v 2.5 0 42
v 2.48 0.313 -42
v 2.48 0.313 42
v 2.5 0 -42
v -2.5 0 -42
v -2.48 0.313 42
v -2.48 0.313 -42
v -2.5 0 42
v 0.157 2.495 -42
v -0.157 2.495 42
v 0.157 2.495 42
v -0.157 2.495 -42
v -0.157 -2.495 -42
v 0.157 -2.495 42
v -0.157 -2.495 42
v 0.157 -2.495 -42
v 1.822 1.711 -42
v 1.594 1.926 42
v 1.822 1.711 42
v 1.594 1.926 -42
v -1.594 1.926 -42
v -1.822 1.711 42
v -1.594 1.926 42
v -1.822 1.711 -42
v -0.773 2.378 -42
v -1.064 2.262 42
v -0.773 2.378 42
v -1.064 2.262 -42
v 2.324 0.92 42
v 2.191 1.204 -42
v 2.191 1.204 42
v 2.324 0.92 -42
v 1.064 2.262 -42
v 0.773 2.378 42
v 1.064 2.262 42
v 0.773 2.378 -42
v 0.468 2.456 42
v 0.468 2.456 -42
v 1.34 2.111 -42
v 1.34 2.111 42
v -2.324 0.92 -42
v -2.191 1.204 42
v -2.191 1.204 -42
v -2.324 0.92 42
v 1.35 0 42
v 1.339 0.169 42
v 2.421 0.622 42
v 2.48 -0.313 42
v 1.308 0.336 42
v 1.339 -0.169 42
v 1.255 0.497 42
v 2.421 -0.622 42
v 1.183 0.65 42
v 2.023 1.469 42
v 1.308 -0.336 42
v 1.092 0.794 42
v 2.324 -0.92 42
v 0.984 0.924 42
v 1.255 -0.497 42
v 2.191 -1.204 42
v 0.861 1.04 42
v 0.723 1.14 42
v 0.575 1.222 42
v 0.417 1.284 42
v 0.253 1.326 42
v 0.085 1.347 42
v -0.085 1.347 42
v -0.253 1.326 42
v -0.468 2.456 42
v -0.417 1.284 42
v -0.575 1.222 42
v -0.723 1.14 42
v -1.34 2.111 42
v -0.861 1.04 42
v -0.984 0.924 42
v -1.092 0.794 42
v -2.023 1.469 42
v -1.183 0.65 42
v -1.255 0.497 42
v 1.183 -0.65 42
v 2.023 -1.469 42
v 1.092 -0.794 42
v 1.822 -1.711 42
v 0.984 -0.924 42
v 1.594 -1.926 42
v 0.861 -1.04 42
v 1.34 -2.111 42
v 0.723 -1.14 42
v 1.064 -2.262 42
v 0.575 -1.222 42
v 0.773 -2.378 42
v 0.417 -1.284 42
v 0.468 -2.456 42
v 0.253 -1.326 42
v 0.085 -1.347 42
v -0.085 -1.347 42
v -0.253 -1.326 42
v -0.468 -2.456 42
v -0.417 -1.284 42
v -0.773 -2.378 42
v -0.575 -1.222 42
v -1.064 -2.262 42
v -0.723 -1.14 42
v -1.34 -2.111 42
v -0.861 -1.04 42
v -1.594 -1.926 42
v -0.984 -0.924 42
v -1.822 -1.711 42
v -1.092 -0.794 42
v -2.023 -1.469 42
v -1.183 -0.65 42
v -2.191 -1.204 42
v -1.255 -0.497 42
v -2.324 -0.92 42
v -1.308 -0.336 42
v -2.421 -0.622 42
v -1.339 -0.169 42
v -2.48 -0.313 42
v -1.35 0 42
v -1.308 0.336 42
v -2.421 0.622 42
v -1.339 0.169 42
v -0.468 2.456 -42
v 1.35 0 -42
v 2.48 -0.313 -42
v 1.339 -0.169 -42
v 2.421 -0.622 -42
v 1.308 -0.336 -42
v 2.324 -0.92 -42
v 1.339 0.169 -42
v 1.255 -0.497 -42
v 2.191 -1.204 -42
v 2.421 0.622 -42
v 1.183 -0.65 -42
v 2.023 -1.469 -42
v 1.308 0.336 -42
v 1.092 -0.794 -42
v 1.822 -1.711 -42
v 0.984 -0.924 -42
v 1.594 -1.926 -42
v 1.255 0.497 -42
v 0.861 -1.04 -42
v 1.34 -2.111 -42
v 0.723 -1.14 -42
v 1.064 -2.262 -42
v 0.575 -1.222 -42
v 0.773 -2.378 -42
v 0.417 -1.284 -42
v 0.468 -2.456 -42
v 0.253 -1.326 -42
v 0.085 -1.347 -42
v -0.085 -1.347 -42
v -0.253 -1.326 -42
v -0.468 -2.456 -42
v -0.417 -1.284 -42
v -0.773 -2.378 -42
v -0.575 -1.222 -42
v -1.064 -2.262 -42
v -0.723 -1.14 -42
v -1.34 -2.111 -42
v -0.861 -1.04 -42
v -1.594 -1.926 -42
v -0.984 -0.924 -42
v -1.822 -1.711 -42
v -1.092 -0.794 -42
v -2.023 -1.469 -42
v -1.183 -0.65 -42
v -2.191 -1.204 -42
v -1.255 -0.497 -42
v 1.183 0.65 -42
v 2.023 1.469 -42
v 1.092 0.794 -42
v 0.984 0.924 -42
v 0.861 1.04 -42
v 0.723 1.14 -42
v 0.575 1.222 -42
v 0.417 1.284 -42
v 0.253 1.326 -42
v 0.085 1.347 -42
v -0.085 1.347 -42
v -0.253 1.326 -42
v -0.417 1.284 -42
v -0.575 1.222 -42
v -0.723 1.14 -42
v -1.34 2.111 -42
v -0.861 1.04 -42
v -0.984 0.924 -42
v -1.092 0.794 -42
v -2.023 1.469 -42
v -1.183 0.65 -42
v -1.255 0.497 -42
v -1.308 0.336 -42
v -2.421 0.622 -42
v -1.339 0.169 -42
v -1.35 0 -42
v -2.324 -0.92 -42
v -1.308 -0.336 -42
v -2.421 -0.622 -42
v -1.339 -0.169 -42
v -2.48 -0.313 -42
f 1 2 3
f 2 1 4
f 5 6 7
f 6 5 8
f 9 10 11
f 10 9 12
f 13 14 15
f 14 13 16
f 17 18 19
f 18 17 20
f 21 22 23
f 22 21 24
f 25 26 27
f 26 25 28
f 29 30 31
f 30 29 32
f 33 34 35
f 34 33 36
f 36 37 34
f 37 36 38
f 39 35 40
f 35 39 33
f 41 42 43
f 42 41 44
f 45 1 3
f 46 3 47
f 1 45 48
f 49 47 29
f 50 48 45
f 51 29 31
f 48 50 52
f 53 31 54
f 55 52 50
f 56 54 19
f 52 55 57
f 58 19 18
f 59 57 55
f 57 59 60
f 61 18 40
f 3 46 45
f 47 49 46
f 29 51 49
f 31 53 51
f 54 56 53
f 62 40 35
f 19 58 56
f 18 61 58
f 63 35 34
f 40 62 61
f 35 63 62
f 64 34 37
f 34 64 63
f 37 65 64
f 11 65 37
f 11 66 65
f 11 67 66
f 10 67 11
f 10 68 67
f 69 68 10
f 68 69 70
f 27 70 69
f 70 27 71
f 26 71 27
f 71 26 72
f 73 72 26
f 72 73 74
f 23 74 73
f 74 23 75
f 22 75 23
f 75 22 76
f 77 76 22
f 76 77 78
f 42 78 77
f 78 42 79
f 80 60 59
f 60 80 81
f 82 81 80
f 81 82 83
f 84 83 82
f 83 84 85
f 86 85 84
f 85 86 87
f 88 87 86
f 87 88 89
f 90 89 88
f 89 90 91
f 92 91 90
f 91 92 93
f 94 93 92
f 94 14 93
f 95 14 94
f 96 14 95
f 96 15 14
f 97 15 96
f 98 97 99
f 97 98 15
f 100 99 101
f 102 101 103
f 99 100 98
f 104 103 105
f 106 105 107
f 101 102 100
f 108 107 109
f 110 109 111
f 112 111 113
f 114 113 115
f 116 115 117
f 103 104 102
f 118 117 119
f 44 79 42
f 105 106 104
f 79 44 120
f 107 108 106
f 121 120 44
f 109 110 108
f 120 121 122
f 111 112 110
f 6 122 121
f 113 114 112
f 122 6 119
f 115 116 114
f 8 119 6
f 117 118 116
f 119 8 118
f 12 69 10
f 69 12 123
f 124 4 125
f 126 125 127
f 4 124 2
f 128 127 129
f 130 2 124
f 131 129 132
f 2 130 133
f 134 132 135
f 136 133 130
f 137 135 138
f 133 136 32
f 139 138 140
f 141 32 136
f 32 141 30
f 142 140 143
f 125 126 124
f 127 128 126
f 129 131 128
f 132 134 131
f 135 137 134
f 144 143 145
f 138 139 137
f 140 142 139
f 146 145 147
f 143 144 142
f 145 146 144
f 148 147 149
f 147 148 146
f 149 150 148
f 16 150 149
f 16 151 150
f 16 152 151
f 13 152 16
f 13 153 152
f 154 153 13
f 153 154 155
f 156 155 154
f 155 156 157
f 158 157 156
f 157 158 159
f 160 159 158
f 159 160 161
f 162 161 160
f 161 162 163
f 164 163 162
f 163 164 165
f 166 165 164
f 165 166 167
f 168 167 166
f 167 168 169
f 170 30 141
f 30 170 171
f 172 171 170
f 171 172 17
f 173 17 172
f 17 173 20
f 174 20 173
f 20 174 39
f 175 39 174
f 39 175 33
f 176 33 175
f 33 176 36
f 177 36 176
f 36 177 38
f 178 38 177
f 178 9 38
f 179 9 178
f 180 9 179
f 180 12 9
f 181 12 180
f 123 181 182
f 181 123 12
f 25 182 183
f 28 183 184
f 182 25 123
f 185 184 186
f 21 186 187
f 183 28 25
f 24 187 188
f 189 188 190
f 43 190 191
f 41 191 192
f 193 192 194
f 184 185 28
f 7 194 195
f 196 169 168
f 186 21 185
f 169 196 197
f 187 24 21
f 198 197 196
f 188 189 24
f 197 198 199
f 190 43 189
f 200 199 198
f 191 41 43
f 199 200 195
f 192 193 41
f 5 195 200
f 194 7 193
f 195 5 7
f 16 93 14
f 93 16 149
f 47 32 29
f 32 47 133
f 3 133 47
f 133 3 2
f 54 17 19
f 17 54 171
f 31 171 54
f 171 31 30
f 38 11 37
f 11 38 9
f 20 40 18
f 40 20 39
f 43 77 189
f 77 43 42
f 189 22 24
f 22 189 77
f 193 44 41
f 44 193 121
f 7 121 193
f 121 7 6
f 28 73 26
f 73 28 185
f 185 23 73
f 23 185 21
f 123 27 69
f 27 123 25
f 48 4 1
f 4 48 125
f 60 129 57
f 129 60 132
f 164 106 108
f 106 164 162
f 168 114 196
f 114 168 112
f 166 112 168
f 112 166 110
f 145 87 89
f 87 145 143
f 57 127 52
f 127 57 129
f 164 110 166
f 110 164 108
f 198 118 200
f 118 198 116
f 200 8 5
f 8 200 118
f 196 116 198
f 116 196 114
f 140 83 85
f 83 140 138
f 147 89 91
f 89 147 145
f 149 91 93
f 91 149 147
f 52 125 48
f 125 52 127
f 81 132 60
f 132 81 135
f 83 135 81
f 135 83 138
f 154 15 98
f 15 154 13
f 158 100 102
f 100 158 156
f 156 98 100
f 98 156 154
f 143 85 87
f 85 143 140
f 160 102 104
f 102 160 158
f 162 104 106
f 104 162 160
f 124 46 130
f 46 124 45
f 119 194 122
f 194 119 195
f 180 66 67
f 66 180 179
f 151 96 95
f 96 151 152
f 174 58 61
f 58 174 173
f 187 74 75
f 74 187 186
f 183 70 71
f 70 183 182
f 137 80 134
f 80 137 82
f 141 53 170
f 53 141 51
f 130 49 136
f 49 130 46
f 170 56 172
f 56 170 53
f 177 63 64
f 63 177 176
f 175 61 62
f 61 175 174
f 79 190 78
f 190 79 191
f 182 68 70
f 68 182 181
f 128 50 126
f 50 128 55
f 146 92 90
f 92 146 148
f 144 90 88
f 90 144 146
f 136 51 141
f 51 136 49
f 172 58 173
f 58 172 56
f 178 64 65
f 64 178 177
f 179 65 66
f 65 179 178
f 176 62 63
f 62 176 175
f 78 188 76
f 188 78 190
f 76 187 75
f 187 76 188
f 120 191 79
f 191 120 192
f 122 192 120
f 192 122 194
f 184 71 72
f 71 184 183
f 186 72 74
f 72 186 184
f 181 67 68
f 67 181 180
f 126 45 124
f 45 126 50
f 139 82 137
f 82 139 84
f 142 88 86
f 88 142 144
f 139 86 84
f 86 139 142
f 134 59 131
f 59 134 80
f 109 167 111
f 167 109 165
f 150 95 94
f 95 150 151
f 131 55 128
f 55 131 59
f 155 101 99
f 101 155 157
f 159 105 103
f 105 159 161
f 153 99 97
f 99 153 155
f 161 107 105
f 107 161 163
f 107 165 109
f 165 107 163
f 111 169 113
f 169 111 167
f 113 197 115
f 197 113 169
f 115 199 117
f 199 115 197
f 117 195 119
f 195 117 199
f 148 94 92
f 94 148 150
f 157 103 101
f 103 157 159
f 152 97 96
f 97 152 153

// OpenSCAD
$fn = 50;


difference() {
	union() {
		translate(v = [0, 0, -42.0000000000]) {
			cylinder(h = 84, r = 2.5000000000);
		}
	}
	union() {
		translate(v = [0, 0, -100.0000000000]) {
			cylinder(h = 200, r = 1.3500000000);
		}
	}
}
